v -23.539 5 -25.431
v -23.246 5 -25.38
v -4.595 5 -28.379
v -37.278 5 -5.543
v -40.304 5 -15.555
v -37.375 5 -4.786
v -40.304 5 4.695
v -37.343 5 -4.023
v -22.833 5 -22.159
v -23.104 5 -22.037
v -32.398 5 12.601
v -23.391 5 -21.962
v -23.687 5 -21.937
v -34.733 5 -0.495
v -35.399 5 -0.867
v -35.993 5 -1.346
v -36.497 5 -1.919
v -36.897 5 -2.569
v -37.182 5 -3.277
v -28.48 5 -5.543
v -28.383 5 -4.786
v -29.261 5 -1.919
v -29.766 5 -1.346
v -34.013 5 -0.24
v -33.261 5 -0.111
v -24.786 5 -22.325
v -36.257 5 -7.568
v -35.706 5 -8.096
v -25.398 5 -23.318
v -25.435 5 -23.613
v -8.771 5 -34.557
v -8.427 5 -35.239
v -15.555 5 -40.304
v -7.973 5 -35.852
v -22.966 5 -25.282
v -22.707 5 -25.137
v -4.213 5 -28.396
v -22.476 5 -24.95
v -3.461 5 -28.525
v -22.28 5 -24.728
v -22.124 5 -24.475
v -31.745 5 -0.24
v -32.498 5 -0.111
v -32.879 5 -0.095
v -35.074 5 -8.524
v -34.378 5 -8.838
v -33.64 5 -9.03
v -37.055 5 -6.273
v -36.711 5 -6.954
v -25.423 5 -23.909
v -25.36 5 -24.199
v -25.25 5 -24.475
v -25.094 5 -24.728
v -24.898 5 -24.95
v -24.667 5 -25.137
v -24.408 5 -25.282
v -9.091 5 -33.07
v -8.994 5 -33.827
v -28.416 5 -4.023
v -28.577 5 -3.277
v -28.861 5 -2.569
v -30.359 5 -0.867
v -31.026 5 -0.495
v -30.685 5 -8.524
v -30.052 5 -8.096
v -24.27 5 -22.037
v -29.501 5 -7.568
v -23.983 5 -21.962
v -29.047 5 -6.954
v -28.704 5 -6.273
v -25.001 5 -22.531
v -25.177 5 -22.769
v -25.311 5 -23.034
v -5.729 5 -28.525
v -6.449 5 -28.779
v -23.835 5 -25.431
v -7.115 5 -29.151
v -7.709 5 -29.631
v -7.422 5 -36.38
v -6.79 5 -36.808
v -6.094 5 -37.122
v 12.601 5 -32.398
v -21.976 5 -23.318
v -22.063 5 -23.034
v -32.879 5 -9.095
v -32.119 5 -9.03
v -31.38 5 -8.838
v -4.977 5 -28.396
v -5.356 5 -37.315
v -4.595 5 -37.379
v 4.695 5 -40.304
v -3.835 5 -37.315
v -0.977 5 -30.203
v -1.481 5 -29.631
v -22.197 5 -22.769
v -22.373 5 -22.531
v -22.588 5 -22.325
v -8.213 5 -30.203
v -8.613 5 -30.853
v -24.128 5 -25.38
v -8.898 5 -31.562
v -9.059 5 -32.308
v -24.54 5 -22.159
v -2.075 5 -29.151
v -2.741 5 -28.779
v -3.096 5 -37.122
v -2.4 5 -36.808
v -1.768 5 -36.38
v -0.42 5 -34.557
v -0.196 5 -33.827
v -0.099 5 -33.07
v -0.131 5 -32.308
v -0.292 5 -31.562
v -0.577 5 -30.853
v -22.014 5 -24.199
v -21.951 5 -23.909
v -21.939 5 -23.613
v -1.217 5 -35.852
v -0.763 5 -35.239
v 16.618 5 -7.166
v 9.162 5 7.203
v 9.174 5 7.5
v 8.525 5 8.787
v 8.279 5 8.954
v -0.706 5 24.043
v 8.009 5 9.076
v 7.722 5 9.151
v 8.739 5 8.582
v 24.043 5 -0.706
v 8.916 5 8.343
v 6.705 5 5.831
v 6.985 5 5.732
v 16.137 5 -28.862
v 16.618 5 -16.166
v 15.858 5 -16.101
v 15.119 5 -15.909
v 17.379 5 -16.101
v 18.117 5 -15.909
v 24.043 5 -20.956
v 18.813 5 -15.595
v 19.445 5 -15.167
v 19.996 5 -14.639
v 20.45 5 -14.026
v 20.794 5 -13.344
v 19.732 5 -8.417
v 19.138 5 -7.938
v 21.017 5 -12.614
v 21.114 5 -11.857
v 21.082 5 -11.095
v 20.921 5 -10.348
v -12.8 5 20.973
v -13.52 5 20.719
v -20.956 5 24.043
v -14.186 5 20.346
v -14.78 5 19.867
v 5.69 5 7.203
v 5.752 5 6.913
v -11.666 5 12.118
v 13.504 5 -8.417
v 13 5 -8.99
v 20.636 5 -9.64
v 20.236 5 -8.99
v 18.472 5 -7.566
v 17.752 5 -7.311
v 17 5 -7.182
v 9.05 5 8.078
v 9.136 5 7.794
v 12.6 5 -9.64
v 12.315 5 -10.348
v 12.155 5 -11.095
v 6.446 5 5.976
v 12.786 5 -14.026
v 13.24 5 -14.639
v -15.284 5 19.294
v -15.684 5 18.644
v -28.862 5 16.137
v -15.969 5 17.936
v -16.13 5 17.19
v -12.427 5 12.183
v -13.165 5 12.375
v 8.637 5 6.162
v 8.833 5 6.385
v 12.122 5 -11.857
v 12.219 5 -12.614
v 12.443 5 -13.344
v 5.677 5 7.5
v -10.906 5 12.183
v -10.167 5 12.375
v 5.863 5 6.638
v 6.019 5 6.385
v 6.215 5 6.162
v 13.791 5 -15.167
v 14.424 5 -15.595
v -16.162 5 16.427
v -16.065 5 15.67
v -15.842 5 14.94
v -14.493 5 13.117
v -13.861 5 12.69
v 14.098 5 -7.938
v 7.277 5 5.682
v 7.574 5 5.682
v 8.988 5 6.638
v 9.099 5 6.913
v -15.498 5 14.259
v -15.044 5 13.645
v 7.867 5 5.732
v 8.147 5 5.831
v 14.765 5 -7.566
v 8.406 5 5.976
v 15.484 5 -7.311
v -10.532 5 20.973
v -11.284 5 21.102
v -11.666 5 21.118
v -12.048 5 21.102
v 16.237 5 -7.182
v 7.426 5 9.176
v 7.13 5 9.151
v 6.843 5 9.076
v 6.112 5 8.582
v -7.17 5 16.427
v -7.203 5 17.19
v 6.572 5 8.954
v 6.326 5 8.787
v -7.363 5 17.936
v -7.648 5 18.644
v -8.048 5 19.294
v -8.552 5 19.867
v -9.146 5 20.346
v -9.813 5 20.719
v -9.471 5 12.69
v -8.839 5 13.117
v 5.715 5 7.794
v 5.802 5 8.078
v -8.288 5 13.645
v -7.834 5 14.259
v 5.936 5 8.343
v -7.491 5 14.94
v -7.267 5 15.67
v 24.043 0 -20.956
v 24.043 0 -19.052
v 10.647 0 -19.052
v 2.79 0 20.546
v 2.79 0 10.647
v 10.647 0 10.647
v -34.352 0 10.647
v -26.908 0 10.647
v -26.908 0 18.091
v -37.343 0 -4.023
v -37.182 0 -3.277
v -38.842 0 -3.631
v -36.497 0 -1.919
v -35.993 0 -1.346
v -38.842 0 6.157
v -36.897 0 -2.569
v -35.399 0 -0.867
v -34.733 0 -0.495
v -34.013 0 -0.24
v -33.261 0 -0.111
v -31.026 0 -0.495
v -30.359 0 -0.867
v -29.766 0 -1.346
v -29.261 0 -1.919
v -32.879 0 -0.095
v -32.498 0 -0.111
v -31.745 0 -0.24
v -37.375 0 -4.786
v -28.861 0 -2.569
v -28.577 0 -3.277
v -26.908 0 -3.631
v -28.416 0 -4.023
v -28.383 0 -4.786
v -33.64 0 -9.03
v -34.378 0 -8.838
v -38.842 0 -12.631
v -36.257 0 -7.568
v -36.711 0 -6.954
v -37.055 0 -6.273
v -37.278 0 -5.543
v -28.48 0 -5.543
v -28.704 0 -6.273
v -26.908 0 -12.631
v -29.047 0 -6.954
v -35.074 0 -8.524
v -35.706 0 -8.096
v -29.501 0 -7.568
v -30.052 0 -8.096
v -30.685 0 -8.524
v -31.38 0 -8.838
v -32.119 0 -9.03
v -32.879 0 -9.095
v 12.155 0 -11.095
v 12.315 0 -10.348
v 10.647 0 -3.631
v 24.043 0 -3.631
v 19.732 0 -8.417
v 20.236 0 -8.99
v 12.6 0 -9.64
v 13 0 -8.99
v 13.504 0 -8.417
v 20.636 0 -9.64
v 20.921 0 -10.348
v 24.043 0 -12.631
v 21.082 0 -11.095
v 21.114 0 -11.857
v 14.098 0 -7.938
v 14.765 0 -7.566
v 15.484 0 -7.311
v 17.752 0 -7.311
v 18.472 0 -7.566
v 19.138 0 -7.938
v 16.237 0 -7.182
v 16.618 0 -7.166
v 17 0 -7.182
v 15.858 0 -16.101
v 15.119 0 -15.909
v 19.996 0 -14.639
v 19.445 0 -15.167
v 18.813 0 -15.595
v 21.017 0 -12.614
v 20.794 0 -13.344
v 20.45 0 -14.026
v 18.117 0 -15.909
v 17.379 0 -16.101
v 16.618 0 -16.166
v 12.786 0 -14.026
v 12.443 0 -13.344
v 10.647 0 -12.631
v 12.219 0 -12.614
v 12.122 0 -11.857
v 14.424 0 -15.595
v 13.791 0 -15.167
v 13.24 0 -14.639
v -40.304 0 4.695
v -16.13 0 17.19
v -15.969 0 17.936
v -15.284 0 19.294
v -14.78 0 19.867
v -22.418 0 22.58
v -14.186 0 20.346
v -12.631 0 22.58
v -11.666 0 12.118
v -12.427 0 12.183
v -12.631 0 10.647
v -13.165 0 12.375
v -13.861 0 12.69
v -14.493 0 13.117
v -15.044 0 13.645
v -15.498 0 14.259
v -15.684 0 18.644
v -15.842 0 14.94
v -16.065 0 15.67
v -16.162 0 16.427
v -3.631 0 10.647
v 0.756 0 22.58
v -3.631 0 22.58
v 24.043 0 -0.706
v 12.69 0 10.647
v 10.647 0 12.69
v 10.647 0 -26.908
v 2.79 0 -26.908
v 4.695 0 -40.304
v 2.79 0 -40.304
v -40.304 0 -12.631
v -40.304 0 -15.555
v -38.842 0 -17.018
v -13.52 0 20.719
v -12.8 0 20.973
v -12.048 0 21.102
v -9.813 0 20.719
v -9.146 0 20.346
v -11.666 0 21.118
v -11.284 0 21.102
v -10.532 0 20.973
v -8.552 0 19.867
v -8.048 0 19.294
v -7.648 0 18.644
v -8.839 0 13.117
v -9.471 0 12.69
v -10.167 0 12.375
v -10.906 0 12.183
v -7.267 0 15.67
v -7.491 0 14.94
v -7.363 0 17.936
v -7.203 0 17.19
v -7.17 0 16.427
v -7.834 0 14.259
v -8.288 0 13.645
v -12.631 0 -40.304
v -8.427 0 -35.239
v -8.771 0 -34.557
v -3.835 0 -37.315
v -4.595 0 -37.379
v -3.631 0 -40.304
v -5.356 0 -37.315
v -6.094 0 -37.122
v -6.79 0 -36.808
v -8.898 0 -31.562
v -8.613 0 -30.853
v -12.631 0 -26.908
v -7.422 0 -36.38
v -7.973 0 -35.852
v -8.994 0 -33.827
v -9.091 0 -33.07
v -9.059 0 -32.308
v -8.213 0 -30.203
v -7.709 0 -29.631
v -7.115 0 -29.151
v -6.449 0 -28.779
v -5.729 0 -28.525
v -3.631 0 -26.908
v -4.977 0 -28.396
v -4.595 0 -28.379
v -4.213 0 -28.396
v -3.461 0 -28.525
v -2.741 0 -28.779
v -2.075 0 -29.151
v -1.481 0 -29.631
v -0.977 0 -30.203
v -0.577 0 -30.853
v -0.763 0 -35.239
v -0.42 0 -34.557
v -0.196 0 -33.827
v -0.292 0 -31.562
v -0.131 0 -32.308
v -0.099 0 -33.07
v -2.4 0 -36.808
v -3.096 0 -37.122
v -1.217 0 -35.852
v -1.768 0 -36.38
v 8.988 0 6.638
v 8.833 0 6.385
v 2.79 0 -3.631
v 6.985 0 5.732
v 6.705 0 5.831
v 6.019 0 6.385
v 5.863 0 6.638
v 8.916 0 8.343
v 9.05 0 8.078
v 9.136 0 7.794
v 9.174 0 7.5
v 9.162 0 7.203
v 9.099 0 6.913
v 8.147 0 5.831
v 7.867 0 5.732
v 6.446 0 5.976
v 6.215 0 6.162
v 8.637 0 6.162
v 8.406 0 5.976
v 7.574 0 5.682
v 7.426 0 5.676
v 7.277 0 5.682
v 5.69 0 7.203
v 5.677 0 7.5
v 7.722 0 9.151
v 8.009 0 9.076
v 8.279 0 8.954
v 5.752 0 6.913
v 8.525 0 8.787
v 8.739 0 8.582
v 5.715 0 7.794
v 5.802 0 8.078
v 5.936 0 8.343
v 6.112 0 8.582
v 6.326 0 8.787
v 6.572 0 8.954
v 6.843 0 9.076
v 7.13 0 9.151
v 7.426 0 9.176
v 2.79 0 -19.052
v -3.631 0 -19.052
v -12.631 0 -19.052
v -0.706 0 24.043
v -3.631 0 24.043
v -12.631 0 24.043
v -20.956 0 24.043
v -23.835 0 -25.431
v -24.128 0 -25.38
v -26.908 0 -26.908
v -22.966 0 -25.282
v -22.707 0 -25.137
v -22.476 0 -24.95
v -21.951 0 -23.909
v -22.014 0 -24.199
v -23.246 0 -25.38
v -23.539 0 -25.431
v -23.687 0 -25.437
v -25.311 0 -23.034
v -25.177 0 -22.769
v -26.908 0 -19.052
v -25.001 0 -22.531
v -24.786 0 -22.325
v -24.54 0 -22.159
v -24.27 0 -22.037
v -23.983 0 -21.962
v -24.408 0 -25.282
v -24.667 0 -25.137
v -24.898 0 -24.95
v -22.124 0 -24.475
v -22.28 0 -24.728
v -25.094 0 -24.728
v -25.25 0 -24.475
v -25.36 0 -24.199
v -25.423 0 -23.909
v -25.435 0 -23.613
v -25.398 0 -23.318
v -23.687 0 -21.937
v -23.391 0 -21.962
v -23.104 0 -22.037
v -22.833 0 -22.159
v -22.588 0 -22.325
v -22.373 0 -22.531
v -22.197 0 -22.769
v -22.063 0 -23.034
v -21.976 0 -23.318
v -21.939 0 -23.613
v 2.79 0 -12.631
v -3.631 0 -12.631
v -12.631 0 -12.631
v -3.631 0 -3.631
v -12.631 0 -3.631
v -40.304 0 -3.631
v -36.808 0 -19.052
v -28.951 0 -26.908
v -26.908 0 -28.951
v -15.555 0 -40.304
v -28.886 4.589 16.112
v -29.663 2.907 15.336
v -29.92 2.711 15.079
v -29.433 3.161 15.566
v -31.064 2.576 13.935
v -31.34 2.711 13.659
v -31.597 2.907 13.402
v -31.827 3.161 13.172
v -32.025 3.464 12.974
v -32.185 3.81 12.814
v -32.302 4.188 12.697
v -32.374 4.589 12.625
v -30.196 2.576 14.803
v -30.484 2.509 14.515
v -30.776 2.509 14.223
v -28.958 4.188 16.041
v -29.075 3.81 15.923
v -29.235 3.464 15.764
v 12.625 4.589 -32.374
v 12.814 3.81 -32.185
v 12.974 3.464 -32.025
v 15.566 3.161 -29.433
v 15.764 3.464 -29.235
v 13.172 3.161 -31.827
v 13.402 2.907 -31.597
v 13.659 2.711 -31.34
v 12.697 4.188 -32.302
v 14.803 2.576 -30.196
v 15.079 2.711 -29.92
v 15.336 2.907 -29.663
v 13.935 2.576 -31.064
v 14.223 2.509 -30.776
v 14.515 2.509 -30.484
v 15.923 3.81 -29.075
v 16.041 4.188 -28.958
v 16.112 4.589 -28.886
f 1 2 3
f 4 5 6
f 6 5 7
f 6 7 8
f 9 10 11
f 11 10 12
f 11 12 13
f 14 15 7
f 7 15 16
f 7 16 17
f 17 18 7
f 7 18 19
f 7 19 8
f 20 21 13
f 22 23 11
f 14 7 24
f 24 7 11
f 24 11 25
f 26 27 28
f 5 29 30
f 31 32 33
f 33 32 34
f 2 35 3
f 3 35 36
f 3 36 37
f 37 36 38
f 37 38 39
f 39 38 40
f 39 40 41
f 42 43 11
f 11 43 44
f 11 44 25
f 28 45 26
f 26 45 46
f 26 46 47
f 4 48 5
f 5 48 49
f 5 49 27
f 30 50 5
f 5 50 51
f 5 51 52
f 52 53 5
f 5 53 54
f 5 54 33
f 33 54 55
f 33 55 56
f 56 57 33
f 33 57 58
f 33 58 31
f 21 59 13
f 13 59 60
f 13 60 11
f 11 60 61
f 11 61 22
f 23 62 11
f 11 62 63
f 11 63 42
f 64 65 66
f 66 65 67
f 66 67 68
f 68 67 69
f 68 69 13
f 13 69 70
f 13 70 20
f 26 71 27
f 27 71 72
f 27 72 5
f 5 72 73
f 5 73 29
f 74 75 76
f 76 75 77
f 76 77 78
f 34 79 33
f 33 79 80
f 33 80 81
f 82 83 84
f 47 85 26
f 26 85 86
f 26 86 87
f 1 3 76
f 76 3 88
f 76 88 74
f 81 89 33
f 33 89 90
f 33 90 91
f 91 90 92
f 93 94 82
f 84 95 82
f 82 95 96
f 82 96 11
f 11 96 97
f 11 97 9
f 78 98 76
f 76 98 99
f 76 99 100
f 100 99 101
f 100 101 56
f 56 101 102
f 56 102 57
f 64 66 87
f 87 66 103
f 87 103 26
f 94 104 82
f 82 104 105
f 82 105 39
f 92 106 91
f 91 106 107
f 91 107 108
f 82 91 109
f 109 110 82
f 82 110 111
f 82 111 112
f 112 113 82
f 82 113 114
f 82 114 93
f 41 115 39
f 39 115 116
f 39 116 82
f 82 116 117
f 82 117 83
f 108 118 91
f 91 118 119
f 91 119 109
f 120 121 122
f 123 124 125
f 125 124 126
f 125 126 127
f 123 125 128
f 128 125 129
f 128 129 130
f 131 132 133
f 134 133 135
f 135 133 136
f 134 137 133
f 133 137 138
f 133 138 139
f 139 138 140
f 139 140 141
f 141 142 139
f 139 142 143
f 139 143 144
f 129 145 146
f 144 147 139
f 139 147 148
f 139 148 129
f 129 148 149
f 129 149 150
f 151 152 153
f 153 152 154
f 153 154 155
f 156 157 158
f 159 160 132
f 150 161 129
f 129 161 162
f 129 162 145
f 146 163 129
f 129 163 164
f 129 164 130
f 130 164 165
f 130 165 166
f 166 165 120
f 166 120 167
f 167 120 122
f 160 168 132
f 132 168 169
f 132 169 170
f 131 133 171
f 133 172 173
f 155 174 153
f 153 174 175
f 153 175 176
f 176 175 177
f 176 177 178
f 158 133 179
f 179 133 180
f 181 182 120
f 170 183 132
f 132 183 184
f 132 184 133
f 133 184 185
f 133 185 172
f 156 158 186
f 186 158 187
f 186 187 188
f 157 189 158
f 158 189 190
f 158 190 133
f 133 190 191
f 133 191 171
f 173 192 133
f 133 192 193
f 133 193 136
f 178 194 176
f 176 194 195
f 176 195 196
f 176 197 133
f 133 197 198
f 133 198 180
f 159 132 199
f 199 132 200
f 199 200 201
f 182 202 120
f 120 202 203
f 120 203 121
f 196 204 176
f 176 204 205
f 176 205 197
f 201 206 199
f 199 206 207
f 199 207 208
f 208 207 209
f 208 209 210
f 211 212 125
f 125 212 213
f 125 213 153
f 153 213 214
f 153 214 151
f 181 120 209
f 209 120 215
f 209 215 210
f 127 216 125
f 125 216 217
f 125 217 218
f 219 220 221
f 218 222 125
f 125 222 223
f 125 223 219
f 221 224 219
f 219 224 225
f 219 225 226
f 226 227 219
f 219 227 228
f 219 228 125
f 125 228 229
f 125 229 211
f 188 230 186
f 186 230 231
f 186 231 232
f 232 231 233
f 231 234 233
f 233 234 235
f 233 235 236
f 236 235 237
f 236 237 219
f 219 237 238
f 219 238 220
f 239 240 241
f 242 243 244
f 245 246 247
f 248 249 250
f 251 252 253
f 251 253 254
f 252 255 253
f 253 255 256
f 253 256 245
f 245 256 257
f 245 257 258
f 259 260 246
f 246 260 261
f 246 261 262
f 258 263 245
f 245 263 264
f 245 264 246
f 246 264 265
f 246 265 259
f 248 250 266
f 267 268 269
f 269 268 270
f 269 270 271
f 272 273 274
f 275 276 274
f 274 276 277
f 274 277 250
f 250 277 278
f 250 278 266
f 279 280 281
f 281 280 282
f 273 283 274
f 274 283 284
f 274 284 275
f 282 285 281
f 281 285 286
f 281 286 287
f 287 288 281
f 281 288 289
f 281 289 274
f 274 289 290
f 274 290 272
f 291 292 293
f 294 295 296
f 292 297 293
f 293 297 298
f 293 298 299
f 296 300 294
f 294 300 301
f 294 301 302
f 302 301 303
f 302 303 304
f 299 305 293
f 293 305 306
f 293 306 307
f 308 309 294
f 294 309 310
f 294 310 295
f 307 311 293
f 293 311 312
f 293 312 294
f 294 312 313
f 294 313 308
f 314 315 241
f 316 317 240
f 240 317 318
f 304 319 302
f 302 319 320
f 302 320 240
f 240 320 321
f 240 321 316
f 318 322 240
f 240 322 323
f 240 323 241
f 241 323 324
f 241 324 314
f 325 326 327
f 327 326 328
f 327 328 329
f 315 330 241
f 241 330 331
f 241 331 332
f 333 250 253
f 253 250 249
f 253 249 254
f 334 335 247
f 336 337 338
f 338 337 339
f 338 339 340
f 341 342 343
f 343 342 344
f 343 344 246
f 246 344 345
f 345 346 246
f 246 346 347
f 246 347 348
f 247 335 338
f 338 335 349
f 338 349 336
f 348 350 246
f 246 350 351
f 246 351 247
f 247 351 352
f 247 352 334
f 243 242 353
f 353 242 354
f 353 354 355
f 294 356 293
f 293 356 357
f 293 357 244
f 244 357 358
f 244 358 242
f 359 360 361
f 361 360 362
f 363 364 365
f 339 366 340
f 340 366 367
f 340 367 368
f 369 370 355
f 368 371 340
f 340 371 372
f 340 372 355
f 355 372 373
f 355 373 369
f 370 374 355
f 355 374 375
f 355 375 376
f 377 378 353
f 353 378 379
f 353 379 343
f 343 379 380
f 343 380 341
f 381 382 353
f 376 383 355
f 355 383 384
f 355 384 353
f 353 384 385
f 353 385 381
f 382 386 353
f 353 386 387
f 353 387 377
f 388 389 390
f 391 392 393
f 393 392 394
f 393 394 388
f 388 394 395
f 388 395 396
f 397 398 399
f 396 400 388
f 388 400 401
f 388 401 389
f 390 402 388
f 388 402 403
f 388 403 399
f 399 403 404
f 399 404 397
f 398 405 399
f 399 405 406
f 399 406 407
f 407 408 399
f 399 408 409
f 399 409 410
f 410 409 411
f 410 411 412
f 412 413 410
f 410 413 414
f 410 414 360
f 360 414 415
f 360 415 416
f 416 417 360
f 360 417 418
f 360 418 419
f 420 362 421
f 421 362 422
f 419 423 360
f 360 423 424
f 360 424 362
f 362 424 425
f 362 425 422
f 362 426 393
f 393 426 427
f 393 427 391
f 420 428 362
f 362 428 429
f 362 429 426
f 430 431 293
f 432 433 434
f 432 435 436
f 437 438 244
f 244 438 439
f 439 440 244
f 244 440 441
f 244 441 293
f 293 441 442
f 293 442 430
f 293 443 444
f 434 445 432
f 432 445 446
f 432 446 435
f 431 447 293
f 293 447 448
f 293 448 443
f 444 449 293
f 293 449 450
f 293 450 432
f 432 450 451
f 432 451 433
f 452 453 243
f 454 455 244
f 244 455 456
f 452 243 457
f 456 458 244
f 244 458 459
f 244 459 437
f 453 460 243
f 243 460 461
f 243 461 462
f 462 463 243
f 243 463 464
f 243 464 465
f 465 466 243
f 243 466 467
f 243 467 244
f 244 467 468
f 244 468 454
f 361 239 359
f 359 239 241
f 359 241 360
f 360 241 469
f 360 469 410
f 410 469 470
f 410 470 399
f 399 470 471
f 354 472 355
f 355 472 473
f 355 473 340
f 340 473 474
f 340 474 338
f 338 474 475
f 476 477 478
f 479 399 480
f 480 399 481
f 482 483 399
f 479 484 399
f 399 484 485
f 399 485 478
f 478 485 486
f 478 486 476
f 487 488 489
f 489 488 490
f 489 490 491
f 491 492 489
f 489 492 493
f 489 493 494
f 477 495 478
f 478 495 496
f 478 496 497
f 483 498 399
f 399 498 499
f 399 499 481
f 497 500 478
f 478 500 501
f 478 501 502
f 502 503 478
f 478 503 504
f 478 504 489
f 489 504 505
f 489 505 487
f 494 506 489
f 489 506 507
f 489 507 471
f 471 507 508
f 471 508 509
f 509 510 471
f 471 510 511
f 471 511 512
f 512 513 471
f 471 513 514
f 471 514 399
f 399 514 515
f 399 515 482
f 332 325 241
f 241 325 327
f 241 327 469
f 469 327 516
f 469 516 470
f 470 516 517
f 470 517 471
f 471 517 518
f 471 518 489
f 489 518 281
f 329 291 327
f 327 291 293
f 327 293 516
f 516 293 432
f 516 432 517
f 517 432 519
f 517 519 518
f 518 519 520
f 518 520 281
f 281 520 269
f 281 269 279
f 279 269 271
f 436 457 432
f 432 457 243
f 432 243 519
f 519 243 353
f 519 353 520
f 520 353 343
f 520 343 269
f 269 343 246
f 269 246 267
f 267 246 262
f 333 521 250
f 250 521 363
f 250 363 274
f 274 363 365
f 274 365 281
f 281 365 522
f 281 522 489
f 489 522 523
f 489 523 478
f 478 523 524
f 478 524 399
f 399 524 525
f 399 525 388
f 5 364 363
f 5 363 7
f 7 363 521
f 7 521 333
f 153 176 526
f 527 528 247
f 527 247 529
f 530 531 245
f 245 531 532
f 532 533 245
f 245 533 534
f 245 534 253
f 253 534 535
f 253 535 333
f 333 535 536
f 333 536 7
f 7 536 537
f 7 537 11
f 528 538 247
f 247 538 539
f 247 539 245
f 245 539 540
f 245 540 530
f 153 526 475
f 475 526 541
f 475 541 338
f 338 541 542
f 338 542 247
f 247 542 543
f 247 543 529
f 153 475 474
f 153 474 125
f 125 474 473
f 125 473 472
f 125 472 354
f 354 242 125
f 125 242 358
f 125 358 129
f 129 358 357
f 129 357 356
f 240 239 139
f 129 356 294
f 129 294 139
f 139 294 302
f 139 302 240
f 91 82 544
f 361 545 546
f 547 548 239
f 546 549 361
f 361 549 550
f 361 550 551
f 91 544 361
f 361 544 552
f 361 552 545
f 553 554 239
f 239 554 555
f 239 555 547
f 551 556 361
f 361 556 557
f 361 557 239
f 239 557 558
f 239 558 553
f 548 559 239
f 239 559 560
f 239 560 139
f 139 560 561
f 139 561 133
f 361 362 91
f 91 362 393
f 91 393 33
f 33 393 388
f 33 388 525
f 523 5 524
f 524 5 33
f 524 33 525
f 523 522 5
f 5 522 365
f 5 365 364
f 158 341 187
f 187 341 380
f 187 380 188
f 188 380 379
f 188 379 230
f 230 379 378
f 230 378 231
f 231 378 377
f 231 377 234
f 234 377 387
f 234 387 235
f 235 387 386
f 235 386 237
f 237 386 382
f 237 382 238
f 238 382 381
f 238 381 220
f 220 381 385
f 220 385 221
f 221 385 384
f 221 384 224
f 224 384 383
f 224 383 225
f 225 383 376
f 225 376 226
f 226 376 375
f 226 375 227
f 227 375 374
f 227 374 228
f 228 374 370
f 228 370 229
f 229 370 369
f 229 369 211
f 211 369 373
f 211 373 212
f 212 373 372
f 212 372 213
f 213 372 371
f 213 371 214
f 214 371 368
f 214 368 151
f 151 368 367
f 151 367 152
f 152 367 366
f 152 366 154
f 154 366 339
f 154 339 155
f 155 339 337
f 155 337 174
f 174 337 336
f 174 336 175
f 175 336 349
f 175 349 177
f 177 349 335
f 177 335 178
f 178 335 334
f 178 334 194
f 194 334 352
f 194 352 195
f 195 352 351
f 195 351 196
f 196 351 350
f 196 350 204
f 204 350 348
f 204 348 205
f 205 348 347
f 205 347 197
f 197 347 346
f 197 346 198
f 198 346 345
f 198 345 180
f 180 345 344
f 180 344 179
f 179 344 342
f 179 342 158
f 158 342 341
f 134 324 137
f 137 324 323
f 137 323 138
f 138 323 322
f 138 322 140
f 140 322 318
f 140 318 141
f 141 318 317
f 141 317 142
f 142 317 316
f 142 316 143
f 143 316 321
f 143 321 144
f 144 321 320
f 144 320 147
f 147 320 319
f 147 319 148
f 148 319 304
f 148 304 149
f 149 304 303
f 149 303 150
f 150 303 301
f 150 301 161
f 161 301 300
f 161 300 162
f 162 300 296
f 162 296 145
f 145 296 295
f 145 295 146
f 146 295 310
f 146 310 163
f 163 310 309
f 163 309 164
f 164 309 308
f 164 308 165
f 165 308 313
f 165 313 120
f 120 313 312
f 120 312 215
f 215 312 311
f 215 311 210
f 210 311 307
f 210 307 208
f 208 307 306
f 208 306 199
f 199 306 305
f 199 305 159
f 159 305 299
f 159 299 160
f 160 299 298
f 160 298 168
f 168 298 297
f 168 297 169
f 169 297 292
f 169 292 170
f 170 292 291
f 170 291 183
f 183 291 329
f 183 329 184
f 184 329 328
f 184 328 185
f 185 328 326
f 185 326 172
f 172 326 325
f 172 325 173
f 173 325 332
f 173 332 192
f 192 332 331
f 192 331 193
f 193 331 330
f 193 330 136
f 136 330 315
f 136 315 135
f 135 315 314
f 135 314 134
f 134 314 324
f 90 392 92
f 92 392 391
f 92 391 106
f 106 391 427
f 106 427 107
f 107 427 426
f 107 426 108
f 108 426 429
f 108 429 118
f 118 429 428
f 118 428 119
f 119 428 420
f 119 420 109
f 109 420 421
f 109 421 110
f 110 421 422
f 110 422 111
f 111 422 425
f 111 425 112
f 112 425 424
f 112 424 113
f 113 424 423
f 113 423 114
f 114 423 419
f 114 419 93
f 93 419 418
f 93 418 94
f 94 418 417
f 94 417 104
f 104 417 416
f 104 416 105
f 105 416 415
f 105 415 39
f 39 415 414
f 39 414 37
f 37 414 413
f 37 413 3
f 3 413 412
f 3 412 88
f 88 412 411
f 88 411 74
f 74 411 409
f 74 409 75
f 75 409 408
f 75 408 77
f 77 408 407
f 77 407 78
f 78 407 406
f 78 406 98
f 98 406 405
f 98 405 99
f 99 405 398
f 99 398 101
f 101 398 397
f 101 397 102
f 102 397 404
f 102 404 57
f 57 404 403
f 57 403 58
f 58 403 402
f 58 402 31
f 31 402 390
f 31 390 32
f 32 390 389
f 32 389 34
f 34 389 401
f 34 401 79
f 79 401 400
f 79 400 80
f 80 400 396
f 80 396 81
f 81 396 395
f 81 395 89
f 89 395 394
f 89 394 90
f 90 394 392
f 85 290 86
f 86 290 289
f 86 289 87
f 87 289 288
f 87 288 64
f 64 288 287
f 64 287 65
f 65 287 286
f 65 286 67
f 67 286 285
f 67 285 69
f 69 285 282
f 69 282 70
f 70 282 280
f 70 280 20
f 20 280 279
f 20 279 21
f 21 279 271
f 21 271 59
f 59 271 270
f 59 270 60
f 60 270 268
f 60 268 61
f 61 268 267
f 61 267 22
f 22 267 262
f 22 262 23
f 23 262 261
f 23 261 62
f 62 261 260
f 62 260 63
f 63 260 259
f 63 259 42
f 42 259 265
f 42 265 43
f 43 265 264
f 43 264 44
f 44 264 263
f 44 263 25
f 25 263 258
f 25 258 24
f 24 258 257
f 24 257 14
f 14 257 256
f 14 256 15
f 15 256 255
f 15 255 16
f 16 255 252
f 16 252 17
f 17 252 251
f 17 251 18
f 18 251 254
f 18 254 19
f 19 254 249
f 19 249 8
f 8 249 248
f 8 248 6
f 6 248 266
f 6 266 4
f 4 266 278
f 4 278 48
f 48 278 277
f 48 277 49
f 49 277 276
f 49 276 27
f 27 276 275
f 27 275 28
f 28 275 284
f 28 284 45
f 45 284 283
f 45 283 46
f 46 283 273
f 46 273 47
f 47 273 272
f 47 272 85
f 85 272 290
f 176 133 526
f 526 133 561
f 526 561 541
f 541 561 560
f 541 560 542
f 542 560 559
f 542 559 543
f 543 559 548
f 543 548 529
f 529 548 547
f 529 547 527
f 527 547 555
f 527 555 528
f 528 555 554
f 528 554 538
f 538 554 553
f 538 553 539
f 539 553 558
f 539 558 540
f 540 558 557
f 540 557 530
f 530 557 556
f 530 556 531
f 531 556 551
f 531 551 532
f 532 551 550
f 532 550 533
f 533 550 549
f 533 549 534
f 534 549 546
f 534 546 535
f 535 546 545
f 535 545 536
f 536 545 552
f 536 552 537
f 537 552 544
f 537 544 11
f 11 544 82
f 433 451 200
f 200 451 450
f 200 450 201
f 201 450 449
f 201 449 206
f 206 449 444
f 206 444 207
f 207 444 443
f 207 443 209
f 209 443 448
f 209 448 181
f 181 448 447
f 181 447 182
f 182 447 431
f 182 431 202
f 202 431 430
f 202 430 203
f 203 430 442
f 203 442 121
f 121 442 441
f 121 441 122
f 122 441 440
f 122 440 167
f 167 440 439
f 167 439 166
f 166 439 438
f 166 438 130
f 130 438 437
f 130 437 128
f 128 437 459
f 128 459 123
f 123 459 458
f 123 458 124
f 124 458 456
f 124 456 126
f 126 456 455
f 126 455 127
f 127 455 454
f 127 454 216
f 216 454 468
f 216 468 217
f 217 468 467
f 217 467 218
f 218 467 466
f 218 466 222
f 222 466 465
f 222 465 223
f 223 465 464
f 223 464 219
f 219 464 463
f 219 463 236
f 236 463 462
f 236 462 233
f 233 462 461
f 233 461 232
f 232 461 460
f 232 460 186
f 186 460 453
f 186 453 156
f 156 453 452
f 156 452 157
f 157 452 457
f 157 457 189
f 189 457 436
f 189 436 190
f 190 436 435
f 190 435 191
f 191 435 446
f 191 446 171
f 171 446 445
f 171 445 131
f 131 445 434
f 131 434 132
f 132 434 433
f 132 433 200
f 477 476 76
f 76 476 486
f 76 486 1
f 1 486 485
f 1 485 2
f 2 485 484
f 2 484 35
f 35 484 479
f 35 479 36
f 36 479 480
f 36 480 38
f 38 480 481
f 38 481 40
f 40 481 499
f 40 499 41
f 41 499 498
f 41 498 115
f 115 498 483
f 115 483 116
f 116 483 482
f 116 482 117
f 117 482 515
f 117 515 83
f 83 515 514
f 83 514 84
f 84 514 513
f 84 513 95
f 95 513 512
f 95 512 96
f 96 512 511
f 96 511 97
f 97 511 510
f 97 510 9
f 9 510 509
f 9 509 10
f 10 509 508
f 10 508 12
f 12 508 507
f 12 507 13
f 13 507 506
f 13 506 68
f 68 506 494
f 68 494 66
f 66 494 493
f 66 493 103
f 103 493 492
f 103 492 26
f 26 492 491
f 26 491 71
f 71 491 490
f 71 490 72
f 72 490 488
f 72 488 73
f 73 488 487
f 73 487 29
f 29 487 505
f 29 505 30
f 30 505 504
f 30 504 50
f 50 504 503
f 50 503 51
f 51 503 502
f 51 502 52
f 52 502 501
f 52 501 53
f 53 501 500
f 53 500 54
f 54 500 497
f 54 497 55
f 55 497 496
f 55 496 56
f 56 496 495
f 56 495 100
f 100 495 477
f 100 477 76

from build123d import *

# Parameters (mm, degrees)
SKETCH1_R           = 4.5
BOSS_EXTRUDE1_DEPTH = 5
CUT_EXTRUDE1_REACH  = 80.329
CUT_EXTRUDE3_REACH  = 59.217
SKETCH6_R           = 1.75


with BuildPart() as part:
    # Sketch1 → Boss-Extrude1 (new body)
    with BuildSketch(Plane(origin=(0, 0, 0), x_dir=(1, 0, 0), z_dir=(0, 1, 0))):
        Polygon((-40.303943114, 15.555205773), (-15.555205773, 40.303943114), (4.694794227, 40.303943114), (24.042773974, 20.955963368), (24.042773974, 0.705963368), (-0.705963368, -24.042773974), (-20.955963368, -24.042773974), (-40.303943114, -4.694794227), align=None)
        with Locations(Location((-11.666118476, -16.618152771, 0), (0, 0, 270))):
            Circle(SKETCH1_R, mode=Mode.SUBTRACT)
        with Locations(Location((16.618152771, 11.666118476, 0), (0, 0, 270))):
            Circle(SKETCH1_R, mode=Mode.SUBTRACT)
        with Locations(Location((-4.595050664, 32.879321912, 0), (0, 0, 270))):
            Circle(SKETCH1_R, mode=Mode.SUBTRACT)
        with Locations(Location((-32.879321912, 4.595050664, 0), (0, 0, 270))):
            Circle(SKETCH1_R, mode=Mode.SUBTRACT)
    extrude(amount=BOSS_EXTRUDE1_DEPTH)

    # Sketch4 → Cut-Extrude1 (cut, up to next)
    with BuildSketch(Plane(origin=(22.499368671, 0, -22.499368671), x_dir=(-0.7071067811865465, 0, -0.7071067811865487), z_dir=(0.7071067811865487, 0, -0.7071067811865465)), mode=Mode.PRIVATE) as cut_extrude1_sk1:
        with BuildLine():
            Line((13.998382969, 5), (8.998382969, 5))
            ThreePointArc((8.998382969, 5), (11.498382969, 2.5), (13.998382969, 5))
        make_face()
    cut_extrude1_tool1 = extrude(cut_extrude1_sk1.sketch, amount=-CUT_EXTRUDE1_REACH, mode=Mode.PRIVATE) & part.part
    add(cut_extrude1_tool1.solids().sort_by_distance((14.368784, 3.938967, -30.629953))[0], mode=Mode.SUBTRACT)

    # Sketch6 → Cut-Extrude3 (cut, up to next)
    with BuildSketch(Plane(origin=(0, 5, 0), x_dir=(1, 0, 0), z_dir=(0, 1, 0)), mode=Mode.PRIVATE) as cut_extrude3_sk1:
        with Locations(Location((-23.686933757, 23.686933757, 0), (0, 0, 270))):
            Circle(SKETCH6_R)
    cut_extrude3_tool1 = extrude(cut_extrude3_sk1.sketch, amount=-CUT_EXTRUDE3_REACH, mode=Mode.PRIVATE) & part.part
    # Sketch6 → Cut-Extrude3 (cut, up to next)
    with BuildSketch(Plane(origin=(0, 5, 0), x_dir=(1, 0, 0), z_dir=(0, 1, 0)), mode=Mode.PRIVATE) as cut_extrude3_sk2:
        with Locations(Location((7.425764616, -7.425764616, 0), (0, 0, 270))):
            Circle(SKETCH6_R)
    cut_extrude3_tool2 = extrude(cut_extrude3_sk2.sketch, amount=-CUT_EXTRUDE3_REACH, mode=Mode.PRIVATE) & part.part
    add(cut_extrude3_tool1.solids().sort_by_distance((-23.686934, 5, -23.686934))[0], mode=Mode.SUBTRACT)
    add(cut_extrude3_tool2.solids().sort_by_distance((7.425765, 5, 7.425765))[0], mode=Mode.SUBTRACT)


solid = part.part
